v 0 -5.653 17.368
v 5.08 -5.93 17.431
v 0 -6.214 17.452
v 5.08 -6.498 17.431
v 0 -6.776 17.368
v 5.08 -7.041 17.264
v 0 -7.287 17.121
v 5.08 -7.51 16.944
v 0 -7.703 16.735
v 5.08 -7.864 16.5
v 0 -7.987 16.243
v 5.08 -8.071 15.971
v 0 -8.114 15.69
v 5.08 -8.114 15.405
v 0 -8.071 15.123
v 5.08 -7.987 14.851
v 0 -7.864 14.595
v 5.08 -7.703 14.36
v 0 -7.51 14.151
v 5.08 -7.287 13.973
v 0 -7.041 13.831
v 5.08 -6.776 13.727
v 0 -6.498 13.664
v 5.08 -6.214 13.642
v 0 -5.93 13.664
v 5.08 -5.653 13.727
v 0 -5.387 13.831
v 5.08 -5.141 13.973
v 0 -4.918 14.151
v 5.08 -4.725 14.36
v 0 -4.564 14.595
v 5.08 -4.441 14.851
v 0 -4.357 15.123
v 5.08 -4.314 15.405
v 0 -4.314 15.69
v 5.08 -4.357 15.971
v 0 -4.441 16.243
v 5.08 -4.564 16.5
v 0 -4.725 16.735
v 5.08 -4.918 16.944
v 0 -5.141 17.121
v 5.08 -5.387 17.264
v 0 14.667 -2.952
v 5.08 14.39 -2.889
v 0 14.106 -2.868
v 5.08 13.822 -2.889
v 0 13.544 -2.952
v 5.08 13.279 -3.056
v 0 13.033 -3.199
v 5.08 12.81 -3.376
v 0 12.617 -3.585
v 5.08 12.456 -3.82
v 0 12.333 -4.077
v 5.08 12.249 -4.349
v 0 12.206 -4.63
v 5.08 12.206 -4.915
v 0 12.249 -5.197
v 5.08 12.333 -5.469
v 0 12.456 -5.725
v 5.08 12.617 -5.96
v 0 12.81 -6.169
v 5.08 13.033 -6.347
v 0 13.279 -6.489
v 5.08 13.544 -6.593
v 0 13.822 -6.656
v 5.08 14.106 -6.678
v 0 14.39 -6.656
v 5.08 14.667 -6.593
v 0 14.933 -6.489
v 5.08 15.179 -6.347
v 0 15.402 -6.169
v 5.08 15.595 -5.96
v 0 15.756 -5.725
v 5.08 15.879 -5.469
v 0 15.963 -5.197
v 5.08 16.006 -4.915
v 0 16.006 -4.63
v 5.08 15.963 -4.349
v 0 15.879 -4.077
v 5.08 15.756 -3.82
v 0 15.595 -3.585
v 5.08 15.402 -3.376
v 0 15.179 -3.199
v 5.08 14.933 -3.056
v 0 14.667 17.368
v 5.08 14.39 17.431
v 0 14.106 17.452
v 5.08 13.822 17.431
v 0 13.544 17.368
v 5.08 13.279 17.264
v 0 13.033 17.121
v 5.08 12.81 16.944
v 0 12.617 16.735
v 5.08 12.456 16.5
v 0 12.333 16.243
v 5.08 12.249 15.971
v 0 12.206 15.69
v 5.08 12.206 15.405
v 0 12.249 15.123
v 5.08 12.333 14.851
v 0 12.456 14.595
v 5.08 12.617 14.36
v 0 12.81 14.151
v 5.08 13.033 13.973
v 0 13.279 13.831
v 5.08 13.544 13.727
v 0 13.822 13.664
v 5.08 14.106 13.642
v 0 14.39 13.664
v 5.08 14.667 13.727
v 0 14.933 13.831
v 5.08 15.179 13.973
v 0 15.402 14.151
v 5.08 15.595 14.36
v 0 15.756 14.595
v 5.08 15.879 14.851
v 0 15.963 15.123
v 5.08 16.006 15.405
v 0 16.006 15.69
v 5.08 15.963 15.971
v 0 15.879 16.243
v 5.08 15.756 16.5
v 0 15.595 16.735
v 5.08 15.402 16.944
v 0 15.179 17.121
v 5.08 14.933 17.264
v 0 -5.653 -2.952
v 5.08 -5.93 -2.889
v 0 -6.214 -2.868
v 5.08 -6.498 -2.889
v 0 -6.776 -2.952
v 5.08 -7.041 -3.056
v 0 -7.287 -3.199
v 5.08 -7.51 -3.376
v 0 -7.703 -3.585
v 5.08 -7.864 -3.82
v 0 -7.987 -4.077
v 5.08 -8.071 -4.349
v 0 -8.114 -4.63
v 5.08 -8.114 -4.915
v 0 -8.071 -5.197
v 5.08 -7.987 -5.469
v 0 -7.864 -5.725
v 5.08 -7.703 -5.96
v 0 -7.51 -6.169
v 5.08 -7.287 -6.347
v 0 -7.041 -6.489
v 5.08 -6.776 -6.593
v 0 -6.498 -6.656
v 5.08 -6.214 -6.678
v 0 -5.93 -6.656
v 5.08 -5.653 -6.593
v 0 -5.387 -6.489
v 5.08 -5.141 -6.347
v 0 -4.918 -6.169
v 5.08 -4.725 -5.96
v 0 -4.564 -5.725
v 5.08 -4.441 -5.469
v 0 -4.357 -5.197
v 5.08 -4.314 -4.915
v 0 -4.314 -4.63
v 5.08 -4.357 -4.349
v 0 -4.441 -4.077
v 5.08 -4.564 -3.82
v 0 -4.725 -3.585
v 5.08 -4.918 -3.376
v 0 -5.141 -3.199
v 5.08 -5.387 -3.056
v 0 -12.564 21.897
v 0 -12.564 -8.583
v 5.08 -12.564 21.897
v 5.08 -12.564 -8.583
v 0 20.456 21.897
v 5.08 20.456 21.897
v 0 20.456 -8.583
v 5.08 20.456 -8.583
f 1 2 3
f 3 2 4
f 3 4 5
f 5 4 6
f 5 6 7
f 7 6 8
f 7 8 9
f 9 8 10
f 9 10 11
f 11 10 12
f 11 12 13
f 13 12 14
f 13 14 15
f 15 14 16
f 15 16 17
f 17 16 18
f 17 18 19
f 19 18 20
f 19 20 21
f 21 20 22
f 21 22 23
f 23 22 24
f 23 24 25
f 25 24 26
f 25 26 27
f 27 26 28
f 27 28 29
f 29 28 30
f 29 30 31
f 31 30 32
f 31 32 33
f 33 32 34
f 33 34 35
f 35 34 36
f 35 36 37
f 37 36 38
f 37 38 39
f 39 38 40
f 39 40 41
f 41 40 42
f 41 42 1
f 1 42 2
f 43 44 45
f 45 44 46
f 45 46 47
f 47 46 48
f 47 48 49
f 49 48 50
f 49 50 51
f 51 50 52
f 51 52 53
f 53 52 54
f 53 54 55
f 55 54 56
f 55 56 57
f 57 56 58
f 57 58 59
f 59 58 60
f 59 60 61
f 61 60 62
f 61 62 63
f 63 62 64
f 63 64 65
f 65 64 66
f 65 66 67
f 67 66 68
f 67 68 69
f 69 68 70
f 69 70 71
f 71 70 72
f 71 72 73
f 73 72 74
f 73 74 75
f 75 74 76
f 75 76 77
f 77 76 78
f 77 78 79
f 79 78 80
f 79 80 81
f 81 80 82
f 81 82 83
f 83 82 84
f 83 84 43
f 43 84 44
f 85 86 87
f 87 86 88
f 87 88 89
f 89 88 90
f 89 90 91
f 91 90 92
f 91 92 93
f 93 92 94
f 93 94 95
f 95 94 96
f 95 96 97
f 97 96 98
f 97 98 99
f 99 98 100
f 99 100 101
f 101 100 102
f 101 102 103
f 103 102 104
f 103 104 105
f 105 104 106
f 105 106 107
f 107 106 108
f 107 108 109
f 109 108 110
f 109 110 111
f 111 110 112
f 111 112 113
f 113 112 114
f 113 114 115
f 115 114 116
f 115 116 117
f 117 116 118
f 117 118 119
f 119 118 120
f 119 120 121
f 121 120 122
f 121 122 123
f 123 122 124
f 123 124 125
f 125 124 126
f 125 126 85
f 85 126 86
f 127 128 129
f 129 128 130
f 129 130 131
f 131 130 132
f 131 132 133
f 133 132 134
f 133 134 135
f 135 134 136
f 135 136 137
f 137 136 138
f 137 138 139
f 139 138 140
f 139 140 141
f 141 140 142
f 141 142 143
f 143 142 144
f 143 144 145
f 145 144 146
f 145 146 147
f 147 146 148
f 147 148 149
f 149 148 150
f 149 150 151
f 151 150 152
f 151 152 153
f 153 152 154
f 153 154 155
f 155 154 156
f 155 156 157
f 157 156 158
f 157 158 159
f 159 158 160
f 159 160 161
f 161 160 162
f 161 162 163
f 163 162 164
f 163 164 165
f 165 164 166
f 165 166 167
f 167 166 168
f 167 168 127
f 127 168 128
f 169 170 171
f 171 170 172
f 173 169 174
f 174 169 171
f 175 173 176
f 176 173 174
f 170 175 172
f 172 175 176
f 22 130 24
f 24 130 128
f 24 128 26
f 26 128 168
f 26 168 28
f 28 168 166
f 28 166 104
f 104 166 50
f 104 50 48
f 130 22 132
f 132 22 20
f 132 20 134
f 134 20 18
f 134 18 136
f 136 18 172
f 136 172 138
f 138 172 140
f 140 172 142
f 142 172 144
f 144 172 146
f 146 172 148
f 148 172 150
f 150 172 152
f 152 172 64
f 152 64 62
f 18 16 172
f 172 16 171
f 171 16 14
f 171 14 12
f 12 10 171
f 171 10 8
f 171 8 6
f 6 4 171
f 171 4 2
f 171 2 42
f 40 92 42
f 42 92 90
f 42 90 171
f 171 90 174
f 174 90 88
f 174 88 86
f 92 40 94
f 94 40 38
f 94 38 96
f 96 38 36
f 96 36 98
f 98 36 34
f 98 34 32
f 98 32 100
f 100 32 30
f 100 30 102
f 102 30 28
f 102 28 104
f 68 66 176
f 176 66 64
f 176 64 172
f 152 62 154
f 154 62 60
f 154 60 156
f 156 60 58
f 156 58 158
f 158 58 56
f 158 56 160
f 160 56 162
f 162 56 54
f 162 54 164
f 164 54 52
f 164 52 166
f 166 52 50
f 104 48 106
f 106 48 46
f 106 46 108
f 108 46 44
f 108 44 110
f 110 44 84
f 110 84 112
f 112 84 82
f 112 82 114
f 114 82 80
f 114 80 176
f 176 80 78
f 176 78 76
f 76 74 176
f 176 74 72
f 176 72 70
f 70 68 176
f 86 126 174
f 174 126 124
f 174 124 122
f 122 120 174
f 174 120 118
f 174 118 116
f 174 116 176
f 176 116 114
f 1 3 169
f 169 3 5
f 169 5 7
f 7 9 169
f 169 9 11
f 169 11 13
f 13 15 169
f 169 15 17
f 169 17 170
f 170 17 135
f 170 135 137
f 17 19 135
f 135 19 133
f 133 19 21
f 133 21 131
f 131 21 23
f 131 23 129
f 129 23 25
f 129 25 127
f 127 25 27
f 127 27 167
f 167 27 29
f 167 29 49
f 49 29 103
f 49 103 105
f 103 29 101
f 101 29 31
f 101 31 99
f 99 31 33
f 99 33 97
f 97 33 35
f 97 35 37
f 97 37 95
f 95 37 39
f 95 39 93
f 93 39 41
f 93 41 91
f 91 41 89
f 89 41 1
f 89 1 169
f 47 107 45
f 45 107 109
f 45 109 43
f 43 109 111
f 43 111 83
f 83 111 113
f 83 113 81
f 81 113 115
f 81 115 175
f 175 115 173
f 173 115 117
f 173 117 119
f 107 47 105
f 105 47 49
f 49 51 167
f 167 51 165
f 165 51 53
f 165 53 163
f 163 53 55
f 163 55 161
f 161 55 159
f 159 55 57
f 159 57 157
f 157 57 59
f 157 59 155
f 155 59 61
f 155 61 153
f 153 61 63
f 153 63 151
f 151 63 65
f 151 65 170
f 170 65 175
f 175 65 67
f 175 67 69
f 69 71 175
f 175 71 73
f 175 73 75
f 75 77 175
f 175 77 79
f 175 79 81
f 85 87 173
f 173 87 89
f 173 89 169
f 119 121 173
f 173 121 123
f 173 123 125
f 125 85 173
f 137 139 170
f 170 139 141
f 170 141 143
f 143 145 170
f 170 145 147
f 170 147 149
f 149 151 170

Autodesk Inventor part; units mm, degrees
ref_plane "YZ Plane" through (0, 0, 0) normal (1, 0, 0) x (0, 1, 0)
ref_plane "XZ Plane" through (0, 0, 0) normal (0, 1, 0) x (-1, 0, 0)
ref_plane "XY Plane" through (0, 0, 0) normal (0, 0, 1) x (1, 0, 0)
sketch "Sketch1" plane through (0, 0, 0) normal (1, 0, 0) x (0, 1, 0)
  line L0 (-12.564, -8.5827) -> (20.456, -8.5827)
  line L1 (20.456, -8.5827) -> (20.456, 21.8973)
  line L2 (20.456, 21.8973) -> (-12.564, 21.8973)
  line L3 (-12.564, 21.8973) -> (-12.564, -8.5827)
  point P0 (0, 0)
  dimension "d0" = 30.48
  dimension "d1" = 33.02
extrude "Extrusion1" add sketch "Sketch1" along normal blind 5.08
sketch "Sketch2" plane through (5.08, 0, 0) normal (1, 0, 0) x (0, 0, -1)
  line L0 (8.5827, -12.564) -> (8.5827, 20.456) projected
  line L1 (-21.8973, -12.564) -> (8.5827, -12.564) projected
  line L2 (8.5827, 20.456) -> (-21.8973, 20.456) projected
  line L3 (-21.8973, 20.456) -> (-21.8973, -12.564) projected
  point P0 (0, 0)
  point P1 (4.7727, 14.106)
  point P2 (-15.5473, 14.106)
  point P3 (-15.5473, -6.214)
  point P4 (4.7727, -6.214)
  dimension "d4" = 3.81
  dimension "d5" = 3.81
  dimension "d6" = 6.35
  dimension "d7" = 6.35
  dimension "d8" = 6.35
  dimension "d9" = 6.35
  dimension "d10" = 6.35
  dimension "d11" = 6.35
hole "Hole1" at (5.08, 14.106, -4.7727) at (5.08, 14.106, 15.5473) at (5.08, -6.214, 15.5473) at (5.08, -6.214, -4.7727) direction (-1, 0, 0) diameter 3.81 depth 10.9728 tip angle 118.188 clearance for "Flat Head Machine Screw (82)" size "#6" standard "Ansi Unified Screw Threads"
properties part number "cLIMPpLATE"
